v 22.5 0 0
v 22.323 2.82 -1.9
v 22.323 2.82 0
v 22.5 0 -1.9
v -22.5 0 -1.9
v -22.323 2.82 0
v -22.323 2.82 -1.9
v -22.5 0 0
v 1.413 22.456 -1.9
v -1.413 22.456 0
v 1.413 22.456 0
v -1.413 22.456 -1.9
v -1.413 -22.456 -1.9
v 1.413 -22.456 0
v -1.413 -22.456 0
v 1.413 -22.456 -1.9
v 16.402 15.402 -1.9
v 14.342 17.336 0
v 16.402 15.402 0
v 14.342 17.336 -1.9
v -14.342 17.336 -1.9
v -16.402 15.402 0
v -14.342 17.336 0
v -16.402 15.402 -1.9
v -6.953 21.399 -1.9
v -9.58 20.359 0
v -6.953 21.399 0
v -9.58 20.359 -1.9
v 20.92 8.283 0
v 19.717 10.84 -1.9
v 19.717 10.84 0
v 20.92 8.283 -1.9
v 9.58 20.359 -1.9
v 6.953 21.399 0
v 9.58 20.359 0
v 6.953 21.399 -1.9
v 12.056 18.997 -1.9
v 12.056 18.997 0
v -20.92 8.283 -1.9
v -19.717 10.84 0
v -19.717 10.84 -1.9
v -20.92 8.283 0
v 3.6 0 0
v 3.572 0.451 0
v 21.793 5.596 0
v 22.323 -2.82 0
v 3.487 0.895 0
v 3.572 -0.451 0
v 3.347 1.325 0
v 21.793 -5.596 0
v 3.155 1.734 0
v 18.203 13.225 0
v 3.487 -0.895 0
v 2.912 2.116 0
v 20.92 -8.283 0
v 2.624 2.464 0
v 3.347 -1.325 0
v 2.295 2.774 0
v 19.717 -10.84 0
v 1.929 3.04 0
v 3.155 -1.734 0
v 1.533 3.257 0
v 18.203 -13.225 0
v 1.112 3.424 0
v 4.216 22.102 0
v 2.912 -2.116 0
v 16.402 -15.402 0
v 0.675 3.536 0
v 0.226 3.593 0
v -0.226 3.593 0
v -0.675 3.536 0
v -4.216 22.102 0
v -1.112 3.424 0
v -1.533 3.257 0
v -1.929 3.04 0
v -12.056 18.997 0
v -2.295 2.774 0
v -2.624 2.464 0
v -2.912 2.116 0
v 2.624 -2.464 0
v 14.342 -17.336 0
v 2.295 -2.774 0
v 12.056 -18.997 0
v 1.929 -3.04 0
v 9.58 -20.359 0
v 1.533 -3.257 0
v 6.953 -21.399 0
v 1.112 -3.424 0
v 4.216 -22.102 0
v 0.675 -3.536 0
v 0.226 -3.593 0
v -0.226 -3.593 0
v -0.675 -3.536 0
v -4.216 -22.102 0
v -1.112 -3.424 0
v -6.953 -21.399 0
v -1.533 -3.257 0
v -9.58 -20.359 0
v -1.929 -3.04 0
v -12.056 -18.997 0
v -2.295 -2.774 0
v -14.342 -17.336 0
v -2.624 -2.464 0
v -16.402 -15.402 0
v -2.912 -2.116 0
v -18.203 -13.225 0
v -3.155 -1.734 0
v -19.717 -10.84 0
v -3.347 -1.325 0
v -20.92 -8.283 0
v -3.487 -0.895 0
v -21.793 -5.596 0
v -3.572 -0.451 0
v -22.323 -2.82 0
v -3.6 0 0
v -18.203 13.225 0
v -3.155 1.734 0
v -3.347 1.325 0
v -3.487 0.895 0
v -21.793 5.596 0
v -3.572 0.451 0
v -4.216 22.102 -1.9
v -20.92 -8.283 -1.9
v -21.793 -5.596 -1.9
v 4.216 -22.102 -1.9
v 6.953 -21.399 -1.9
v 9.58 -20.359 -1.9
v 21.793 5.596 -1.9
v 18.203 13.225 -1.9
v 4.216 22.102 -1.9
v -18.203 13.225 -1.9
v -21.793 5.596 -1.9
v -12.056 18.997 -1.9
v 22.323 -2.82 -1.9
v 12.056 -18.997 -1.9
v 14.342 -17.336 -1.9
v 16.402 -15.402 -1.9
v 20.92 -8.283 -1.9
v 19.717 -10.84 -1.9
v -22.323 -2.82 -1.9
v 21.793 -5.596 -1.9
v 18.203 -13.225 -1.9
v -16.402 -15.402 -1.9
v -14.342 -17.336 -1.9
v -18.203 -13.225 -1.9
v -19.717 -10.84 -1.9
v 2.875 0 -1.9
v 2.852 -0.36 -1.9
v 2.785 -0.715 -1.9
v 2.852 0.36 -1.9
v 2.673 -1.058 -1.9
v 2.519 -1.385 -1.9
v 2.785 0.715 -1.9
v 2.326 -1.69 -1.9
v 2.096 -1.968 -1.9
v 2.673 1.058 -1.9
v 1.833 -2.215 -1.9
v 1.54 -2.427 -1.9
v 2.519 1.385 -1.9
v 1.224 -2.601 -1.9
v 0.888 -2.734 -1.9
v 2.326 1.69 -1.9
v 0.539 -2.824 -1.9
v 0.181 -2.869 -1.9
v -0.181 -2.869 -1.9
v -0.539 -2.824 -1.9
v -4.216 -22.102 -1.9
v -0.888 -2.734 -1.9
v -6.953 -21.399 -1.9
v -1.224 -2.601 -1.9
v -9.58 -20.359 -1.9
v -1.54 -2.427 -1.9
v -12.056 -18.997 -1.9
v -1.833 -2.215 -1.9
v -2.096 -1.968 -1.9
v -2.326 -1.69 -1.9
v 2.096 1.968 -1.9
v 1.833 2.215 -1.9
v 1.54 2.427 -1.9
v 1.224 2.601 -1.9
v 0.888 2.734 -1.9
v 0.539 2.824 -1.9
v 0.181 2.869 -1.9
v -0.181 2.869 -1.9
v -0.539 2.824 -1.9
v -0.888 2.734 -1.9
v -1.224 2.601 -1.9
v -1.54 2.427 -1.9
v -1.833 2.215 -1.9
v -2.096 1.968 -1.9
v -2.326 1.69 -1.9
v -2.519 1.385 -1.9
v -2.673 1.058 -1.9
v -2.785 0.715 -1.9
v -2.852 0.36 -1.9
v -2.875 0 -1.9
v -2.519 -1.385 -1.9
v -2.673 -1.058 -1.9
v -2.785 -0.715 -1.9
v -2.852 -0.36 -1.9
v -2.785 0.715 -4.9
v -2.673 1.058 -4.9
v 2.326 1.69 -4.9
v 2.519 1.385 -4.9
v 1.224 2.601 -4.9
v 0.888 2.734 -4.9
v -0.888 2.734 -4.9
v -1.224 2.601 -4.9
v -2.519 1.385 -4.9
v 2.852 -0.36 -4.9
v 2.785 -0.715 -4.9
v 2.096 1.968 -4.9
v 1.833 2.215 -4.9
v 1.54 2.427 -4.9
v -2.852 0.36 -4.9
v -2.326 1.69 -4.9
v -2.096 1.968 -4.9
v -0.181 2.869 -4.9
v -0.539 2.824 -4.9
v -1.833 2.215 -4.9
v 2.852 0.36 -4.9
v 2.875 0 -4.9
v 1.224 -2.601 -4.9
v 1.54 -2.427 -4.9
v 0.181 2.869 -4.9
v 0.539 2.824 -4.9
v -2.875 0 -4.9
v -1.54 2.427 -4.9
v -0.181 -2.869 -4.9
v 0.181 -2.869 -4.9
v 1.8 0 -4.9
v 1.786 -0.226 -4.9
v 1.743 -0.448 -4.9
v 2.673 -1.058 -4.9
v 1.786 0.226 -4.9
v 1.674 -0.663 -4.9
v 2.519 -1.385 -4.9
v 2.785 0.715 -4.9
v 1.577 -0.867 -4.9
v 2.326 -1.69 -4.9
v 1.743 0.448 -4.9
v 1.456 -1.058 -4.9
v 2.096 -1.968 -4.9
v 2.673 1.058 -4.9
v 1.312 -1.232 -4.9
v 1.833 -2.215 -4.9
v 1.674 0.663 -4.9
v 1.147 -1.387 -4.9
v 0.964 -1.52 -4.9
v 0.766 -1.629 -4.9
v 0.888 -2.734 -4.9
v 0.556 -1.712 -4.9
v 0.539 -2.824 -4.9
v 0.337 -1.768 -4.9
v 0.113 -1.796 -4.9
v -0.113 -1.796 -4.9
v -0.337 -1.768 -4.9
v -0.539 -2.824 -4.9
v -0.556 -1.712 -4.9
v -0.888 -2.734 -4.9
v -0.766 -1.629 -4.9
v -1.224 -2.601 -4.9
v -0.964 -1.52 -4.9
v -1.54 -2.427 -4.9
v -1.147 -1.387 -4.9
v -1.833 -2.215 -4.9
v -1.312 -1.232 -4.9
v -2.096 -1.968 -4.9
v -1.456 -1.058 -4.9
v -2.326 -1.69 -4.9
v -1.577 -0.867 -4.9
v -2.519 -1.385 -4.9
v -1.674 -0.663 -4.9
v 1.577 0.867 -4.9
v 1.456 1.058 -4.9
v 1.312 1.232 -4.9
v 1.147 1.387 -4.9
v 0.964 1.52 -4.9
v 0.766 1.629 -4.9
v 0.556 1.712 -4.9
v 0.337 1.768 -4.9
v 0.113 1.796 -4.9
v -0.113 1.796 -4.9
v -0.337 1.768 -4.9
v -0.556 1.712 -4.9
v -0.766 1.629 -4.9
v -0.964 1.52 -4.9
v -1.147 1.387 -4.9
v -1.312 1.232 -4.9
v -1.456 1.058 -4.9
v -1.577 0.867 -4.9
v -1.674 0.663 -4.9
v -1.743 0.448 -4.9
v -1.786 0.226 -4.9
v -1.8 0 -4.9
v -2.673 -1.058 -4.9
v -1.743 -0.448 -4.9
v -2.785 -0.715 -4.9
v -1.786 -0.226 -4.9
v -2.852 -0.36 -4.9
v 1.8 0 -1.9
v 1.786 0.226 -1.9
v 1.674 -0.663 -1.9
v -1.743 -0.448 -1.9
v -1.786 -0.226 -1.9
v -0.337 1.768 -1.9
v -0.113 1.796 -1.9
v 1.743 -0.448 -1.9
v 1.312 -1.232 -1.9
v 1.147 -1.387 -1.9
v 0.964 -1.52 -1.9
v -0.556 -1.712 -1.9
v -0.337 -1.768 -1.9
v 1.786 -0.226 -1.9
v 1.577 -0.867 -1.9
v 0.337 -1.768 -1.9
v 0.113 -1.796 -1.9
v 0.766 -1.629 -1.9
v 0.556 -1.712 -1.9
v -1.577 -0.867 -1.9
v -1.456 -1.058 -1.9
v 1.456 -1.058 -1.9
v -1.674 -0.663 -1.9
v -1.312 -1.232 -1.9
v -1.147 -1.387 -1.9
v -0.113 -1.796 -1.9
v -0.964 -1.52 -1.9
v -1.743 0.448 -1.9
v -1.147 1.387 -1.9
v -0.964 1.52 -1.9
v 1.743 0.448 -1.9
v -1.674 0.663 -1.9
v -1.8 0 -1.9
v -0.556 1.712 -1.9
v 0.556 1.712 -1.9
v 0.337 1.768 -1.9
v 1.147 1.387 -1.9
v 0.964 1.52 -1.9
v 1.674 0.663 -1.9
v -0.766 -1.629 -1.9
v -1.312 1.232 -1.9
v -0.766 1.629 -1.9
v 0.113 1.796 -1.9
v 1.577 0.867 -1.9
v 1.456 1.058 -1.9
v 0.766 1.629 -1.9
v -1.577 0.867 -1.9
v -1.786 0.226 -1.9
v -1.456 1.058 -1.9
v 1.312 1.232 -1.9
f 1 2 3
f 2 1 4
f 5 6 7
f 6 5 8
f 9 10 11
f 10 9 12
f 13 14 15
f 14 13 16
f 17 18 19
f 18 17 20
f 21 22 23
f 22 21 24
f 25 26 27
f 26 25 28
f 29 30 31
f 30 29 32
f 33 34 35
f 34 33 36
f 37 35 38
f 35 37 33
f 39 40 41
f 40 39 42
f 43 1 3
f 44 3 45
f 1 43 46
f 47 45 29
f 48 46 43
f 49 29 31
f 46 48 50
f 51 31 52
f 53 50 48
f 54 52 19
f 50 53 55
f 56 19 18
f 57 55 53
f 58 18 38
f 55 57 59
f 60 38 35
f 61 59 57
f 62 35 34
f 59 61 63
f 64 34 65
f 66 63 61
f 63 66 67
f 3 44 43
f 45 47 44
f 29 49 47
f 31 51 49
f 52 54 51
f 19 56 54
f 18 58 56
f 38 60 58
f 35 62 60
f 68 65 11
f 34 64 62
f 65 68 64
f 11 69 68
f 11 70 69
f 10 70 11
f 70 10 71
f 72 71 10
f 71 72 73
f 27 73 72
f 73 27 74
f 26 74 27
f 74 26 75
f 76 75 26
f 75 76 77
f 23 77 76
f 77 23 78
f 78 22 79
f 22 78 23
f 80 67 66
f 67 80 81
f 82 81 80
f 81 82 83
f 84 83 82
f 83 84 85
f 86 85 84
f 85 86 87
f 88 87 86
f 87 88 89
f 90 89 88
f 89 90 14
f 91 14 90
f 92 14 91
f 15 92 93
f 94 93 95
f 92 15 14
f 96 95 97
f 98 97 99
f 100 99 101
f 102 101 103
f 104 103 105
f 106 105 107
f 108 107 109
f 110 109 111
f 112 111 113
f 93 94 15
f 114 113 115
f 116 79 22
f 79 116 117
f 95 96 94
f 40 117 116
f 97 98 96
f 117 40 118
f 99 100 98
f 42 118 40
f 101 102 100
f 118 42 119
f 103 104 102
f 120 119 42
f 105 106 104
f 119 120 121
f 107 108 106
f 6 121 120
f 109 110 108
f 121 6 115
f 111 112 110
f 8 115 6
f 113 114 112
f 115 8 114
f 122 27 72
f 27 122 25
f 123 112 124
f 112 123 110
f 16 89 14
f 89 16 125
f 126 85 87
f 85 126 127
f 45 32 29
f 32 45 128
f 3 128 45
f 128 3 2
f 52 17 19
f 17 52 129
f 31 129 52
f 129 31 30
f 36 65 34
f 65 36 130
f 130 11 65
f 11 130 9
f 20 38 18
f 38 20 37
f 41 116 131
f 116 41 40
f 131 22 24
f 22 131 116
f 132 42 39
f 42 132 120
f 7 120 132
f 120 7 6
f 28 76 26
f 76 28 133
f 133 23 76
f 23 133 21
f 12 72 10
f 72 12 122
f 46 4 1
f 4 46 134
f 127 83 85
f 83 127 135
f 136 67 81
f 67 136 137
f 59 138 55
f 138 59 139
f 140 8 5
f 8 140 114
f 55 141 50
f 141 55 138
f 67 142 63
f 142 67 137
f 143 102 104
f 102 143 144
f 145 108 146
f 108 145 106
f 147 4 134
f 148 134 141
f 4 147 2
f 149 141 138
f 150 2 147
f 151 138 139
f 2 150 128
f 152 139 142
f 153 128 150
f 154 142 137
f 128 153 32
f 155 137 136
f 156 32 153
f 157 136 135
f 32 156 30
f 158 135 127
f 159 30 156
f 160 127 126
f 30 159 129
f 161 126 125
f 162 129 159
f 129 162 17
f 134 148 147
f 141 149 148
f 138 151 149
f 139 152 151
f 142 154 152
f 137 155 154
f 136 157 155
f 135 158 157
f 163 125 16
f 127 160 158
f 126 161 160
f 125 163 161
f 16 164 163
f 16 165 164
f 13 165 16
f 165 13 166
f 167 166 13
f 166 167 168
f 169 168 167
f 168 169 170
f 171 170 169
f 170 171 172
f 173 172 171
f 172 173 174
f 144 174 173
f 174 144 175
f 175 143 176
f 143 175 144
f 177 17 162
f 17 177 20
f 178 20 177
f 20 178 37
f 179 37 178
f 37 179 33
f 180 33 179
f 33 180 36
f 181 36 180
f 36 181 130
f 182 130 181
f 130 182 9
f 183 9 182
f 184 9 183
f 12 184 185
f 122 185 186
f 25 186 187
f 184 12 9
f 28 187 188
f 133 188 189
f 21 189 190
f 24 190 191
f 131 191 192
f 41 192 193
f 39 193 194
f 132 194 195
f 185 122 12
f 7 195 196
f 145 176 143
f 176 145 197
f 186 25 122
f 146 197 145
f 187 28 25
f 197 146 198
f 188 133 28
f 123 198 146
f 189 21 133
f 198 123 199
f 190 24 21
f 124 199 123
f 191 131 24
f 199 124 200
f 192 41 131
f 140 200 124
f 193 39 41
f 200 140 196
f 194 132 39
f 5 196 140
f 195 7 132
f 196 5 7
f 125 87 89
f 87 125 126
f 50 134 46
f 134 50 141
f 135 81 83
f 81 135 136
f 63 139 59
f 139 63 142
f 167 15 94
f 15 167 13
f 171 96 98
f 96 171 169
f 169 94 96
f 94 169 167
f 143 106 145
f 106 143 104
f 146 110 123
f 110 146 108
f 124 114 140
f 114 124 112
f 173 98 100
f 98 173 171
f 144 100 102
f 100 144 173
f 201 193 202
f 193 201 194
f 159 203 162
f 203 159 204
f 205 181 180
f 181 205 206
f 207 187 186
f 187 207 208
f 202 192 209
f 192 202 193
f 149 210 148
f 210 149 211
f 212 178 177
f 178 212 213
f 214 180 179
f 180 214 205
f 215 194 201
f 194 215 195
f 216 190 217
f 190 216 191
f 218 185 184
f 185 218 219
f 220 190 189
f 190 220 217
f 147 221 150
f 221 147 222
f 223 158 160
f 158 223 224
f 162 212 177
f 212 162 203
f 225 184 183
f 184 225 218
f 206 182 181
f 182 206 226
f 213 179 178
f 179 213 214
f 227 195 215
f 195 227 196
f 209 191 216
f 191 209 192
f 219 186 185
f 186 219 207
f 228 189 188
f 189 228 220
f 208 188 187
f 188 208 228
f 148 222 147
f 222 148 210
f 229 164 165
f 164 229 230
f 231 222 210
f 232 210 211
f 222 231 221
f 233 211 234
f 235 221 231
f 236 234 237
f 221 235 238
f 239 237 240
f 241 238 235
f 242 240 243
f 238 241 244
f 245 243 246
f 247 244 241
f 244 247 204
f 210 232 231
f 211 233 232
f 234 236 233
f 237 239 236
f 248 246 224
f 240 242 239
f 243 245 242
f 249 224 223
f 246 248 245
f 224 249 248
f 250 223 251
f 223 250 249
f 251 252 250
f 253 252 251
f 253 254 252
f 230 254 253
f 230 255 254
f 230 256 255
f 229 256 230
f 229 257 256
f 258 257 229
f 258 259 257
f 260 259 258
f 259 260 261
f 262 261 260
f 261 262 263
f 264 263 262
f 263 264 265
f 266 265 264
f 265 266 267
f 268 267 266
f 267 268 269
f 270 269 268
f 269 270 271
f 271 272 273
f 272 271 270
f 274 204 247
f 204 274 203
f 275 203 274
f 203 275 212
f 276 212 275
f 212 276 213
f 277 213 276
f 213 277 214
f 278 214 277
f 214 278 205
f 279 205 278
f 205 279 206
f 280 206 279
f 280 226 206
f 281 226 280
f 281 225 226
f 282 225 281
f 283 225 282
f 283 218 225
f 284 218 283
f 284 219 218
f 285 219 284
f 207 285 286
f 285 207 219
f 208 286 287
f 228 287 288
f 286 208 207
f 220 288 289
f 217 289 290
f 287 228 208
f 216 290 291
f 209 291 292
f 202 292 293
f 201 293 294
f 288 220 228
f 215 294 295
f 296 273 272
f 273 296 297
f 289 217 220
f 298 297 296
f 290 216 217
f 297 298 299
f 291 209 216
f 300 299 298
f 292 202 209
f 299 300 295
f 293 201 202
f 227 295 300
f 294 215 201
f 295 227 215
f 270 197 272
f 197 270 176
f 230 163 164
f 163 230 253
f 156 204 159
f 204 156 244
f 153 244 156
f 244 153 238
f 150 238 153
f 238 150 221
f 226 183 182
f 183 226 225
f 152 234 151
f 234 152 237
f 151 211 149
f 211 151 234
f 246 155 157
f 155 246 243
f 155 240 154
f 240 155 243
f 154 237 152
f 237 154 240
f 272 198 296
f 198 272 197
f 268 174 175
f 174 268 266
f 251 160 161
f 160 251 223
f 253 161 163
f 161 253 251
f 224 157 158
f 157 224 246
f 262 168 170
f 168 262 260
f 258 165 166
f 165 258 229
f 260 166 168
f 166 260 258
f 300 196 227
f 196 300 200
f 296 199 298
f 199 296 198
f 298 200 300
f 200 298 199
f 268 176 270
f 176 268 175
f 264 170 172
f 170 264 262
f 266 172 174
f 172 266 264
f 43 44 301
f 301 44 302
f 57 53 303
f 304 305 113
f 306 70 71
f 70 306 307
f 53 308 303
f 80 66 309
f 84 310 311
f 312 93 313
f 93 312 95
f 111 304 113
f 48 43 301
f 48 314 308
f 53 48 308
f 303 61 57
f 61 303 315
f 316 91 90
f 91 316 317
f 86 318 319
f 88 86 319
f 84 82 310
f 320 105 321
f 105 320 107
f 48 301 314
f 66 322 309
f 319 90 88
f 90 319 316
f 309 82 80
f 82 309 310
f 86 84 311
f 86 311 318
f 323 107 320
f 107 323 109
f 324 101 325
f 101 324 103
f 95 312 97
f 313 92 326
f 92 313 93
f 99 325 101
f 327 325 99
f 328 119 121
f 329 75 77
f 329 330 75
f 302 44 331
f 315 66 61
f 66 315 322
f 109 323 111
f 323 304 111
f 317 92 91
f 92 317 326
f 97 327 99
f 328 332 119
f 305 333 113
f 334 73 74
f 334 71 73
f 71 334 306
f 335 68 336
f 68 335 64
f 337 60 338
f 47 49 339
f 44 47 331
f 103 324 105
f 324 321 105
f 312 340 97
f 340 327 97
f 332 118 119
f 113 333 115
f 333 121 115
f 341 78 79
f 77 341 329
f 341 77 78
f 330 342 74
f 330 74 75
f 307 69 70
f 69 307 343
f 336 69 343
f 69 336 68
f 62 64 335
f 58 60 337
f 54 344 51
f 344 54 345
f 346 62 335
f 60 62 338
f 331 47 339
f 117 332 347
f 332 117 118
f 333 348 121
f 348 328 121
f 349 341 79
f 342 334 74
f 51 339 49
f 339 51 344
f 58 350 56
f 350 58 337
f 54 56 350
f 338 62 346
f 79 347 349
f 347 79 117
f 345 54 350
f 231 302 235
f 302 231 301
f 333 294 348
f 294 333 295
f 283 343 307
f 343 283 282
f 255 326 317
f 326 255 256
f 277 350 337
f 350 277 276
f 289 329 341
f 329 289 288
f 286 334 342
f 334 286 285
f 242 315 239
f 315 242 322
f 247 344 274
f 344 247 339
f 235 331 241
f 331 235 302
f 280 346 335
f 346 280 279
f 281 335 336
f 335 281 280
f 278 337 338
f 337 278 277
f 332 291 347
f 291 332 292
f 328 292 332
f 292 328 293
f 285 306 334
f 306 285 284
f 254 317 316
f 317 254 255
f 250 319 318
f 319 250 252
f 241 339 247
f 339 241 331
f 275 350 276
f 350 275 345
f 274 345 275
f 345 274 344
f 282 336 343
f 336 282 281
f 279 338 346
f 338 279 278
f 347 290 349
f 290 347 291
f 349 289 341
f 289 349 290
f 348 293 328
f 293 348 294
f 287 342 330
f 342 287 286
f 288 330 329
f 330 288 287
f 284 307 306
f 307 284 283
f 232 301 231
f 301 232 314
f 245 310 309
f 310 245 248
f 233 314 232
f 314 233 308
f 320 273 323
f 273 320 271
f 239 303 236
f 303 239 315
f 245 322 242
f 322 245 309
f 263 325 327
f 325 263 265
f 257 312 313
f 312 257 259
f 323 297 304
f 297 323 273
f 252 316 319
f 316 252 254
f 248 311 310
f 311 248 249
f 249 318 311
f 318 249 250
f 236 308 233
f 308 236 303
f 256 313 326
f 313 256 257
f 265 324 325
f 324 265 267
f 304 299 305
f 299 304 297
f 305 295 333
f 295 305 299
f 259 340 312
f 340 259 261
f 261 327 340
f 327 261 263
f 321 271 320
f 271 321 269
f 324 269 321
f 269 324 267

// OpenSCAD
$fn = 50;


difference() {
	union() {
		translate(v = [0, 0, -1.9000000000]) {
			cylinder(h = 1.9000000000, r = 22.5000000000);
		}
		translate(v = [0, 0, -4.9000000000]) {
			cylinder(h = 4.9000000000, r = 2.8750000000);
		}
	}
	union() {
		translate(v = [0, 0, 0]) {
			rotate(a = [0, 0, 0]) {
				difference() {
					union() {
						translate(v = [0, 0, -4.9000000000]) {
							cylinder(h = 4.9000000000, r = 1.5000000000);
						}
						translate(v = [0, 0, -1.9000000000]) {
							cylinder(h = 1.9000000000, r1 = 1.8000000000, r2 = 3.6000000000);
						}
						translate(v = [0, 0, -4.9000000000]) {
							cylinder(h = 4.9000000000, r = 1.8000000000);
						}
						translate(v = [0, 0, -4.9000000000]) {
							cylinder(h = 4.9000000000, r = 1.5000000000);
						}
					}
					union();
				}
			}
		}
	}
}
